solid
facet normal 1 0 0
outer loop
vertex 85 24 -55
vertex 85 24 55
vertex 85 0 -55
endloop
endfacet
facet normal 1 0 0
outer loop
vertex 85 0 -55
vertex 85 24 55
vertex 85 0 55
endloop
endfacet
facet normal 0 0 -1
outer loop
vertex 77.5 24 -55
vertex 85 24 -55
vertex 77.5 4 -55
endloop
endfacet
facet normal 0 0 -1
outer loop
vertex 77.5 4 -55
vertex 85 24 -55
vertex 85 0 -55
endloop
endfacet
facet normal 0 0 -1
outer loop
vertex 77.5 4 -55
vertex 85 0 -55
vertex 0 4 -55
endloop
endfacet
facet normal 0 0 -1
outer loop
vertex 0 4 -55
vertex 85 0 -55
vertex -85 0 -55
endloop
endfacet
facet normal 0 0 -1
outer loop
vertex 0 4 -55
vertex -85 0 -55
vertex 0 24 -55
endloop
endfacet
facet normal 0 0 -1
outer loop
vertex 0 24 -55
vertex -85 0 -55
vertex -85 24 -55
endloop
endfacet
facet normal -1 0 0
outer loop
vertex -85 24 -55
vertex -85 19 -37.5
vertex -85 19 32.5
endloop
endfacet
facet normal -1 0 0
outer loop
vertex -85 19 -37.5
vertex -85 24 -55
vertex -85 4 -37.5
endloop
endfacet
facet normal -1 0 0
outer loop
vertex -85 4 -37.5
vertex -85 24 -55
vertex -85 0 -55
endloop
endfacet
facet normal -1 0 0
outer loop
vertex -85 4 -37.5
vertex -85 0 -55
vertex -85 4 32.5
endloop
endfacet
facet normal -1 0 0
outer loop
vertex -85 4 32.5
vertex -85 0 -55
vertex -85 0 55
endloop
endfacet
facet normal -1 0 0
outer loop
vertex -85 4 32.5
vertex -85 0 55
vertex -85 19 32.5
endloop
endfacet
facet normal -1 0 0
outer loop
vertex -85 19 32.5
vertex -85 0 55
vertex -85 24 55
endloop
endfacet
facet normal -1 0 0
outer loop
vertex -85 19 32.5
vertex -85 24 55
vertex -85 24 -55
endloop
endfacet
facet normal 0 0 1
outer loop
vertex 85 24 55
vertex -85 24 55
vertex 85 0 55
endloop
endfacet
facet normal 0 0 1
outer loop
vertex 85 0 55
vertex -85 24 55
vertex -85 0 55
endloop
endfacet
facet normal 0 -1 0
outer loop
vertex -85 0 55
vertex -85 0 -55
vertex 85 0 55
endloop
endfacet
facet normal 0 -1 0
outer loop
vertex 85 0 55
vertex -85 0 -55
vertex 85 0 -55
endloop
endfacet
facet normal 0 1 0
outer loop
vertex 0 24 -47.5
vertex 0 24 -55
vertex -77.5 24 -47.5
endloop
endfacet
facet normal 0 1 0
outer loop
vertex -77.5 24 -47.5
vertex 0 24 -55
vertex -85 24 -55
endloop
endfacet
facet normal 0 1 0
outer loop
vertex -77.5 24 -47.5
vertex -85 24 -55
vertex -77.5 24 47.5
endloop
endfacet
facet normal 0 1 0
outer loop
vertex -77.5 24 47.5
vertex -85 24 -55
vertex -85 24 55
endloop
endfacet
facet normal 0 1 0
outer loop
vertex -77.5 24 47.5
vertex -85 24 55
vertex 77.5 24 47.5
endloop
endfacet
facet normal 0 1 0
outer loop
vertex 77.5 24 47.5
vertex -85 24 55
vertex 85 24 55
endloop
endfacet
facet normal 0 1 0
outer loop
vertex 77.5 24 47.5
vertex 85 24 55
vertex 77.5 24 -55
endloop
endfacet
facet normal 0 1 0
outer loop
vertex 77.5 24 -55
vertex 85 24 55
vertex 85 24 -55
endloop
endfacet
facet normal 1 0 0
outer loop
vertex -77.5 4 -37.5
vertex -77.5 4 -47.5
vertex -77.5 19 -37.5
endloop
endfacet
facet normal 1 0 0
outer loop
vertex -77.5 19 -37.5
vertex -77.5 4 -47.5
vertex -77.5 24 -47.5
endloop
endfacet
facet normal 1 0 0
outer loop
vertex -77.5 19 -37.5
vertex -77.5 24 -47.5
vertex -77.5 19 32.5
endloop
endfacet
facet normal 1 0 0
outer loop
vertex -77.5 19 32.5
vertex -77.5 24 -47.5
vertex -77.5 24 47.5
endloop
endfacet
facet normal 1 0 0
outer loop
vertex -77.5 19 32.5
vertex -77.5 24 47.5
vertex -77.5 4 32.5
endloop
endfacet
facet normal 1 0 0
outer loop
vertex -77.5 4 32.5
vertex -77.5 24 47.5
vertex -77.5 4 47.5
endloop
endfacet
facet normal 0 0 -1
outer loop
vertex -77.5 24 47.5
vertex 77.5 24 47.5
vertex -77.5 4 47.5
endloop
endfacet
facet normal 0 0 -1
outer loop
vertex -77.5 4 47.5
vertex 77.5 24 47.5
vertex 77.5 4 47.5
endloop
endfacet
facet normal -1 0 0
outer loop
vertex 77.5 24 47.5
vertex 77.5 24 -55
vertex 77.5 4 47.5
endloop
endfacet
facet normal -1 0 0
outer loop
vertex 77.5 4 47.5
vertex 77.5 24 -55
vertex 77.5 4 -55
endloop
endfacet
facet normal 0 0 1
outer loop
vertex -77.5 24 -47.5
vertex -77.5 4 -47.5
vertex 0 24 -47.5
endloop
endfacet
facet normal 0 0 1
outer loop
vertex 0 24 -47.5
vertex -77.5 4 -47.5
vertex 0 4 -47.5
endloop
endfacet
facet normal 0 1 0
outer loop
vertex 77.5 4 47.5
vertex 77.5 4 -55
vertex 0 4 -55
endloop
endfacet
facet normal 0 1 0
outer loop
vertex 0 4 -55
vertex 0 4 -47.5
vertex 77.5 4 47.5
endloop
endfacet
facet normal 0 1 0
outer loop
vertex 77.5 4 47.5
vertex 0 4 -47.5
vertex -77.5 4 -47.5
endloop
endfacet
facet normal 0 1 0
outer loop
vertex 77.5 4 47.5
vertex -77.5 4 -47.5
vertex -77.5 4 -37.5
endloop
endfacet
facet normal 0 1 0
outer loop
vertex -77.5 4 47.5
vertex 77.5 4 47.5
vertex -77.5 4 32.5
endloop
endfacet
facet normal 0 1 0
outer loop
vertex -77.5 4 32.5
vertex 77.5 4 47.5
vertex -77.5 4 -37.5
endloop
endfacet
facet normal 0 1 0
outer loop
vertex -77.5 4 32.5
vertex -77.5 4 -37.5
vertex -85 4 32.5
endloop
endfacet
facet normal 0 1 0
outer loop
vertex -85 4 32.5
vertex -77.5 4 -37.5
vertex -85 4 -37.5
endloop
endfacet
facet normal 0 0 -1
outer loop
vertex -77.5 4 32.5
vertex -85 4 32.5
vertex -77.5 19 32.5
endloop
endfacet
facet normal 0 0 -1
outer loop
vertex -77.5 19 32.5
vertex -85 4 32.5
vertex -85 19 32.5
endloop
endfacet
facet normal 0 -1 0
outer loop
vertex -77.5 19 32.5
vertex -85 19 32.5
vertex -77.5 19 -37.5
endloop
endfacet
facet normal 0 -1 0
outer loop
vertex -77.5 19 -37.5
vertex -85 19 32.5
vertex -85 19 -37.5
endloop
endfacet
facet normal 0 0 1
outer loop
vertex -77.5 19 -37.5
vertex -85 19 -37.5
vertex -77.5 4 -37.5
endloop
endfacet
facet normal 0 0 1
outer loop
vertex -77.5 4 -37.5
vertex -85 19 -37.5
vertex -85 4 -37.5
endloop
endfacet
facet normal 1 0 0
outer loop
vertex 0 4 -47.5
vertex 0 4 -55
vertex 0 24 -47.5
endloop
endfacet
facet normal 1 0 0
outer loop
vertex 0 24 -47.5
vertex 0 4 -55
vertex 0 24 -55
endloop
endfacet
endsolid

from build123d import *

# Parameters (mm, degrees)
CROQUIS2_W              = 170
CROQUIS2_H              = 110
SALIENTE_EXTRUIR1_DEPTH = 4
CROQUIS3_W              = 170
CROQUIS3_H              = 110
CROQUIS3_W_2            = 155
CROQUIS3_H_2            = 95
SALIENTE_EXTRUIR2_DEPTH = 20
CROQUIS4_W              = 70
CROQUIS4_H              = 15
CORTAR_EXTRUIR1_DEPTH   = 20
CROQUIS5_W              = 77.5
CROQUIS5_H              = 20
CORTAR_EXTRUIR2_DEPTH   = 20


with BuildPart() as part:
    # Croquis2 → Saliente-Extruir1 (new body)
    with BuildSketch(Plane(origin=(0, 0, 0), x_dir=(1, 0, 0), z_dir=(0, 1, 0))):
        Rectangle(CROQUIS2_W, CROQUIS2_H)
    extrude(amount=SALIENTE_EXTRUIR1_DEPTH)

    # Croquis3 → Saliente-Extruir2 (add)
    with BuildSketch(Plane(origin=(0, 4, 0), x_dir=(1, 0, 0), z_dir=(0, 1, 0))):
        Rectangle(CROQUIS3_W, CROQUIS3_H)
        Rectangle(CROQUIS3_W_2, CROQUIS3_H_2, mode=Mode.SUBTRACT)
    extrude(amount=SALIENTE_EXTRUIR2_DEPTH)

    # Croquis4 → Cortar-Extruir1 (cut)
    with BuildSketch(Plane(origin=(-77.5, 0, 0), x_dir=(0, 0, -1), z_dir=(1, 0, 0))):
        with Locations((2.5, 11.5)):
            Rectangle(CROQUIS4_W, CROQUIS4_H)
    extrude(amount=-CORTAR_EXTRUIR1_DEPTH, mode=Mode.SUBTRACT)

    # Croquis5 → Cortar-Extruir2 (cut)
    with BuildSketch(Plane.XY.offset(-47.5)):
        with Locations((38.75, 14)):
            Rectangle(CROQUIS5_W, CROQUIS5_H)
    extrude(amount=-CORTAR_EXTRUIR2_DEPTH, mode=Mode.SUBTRACT)


solid = part.part
